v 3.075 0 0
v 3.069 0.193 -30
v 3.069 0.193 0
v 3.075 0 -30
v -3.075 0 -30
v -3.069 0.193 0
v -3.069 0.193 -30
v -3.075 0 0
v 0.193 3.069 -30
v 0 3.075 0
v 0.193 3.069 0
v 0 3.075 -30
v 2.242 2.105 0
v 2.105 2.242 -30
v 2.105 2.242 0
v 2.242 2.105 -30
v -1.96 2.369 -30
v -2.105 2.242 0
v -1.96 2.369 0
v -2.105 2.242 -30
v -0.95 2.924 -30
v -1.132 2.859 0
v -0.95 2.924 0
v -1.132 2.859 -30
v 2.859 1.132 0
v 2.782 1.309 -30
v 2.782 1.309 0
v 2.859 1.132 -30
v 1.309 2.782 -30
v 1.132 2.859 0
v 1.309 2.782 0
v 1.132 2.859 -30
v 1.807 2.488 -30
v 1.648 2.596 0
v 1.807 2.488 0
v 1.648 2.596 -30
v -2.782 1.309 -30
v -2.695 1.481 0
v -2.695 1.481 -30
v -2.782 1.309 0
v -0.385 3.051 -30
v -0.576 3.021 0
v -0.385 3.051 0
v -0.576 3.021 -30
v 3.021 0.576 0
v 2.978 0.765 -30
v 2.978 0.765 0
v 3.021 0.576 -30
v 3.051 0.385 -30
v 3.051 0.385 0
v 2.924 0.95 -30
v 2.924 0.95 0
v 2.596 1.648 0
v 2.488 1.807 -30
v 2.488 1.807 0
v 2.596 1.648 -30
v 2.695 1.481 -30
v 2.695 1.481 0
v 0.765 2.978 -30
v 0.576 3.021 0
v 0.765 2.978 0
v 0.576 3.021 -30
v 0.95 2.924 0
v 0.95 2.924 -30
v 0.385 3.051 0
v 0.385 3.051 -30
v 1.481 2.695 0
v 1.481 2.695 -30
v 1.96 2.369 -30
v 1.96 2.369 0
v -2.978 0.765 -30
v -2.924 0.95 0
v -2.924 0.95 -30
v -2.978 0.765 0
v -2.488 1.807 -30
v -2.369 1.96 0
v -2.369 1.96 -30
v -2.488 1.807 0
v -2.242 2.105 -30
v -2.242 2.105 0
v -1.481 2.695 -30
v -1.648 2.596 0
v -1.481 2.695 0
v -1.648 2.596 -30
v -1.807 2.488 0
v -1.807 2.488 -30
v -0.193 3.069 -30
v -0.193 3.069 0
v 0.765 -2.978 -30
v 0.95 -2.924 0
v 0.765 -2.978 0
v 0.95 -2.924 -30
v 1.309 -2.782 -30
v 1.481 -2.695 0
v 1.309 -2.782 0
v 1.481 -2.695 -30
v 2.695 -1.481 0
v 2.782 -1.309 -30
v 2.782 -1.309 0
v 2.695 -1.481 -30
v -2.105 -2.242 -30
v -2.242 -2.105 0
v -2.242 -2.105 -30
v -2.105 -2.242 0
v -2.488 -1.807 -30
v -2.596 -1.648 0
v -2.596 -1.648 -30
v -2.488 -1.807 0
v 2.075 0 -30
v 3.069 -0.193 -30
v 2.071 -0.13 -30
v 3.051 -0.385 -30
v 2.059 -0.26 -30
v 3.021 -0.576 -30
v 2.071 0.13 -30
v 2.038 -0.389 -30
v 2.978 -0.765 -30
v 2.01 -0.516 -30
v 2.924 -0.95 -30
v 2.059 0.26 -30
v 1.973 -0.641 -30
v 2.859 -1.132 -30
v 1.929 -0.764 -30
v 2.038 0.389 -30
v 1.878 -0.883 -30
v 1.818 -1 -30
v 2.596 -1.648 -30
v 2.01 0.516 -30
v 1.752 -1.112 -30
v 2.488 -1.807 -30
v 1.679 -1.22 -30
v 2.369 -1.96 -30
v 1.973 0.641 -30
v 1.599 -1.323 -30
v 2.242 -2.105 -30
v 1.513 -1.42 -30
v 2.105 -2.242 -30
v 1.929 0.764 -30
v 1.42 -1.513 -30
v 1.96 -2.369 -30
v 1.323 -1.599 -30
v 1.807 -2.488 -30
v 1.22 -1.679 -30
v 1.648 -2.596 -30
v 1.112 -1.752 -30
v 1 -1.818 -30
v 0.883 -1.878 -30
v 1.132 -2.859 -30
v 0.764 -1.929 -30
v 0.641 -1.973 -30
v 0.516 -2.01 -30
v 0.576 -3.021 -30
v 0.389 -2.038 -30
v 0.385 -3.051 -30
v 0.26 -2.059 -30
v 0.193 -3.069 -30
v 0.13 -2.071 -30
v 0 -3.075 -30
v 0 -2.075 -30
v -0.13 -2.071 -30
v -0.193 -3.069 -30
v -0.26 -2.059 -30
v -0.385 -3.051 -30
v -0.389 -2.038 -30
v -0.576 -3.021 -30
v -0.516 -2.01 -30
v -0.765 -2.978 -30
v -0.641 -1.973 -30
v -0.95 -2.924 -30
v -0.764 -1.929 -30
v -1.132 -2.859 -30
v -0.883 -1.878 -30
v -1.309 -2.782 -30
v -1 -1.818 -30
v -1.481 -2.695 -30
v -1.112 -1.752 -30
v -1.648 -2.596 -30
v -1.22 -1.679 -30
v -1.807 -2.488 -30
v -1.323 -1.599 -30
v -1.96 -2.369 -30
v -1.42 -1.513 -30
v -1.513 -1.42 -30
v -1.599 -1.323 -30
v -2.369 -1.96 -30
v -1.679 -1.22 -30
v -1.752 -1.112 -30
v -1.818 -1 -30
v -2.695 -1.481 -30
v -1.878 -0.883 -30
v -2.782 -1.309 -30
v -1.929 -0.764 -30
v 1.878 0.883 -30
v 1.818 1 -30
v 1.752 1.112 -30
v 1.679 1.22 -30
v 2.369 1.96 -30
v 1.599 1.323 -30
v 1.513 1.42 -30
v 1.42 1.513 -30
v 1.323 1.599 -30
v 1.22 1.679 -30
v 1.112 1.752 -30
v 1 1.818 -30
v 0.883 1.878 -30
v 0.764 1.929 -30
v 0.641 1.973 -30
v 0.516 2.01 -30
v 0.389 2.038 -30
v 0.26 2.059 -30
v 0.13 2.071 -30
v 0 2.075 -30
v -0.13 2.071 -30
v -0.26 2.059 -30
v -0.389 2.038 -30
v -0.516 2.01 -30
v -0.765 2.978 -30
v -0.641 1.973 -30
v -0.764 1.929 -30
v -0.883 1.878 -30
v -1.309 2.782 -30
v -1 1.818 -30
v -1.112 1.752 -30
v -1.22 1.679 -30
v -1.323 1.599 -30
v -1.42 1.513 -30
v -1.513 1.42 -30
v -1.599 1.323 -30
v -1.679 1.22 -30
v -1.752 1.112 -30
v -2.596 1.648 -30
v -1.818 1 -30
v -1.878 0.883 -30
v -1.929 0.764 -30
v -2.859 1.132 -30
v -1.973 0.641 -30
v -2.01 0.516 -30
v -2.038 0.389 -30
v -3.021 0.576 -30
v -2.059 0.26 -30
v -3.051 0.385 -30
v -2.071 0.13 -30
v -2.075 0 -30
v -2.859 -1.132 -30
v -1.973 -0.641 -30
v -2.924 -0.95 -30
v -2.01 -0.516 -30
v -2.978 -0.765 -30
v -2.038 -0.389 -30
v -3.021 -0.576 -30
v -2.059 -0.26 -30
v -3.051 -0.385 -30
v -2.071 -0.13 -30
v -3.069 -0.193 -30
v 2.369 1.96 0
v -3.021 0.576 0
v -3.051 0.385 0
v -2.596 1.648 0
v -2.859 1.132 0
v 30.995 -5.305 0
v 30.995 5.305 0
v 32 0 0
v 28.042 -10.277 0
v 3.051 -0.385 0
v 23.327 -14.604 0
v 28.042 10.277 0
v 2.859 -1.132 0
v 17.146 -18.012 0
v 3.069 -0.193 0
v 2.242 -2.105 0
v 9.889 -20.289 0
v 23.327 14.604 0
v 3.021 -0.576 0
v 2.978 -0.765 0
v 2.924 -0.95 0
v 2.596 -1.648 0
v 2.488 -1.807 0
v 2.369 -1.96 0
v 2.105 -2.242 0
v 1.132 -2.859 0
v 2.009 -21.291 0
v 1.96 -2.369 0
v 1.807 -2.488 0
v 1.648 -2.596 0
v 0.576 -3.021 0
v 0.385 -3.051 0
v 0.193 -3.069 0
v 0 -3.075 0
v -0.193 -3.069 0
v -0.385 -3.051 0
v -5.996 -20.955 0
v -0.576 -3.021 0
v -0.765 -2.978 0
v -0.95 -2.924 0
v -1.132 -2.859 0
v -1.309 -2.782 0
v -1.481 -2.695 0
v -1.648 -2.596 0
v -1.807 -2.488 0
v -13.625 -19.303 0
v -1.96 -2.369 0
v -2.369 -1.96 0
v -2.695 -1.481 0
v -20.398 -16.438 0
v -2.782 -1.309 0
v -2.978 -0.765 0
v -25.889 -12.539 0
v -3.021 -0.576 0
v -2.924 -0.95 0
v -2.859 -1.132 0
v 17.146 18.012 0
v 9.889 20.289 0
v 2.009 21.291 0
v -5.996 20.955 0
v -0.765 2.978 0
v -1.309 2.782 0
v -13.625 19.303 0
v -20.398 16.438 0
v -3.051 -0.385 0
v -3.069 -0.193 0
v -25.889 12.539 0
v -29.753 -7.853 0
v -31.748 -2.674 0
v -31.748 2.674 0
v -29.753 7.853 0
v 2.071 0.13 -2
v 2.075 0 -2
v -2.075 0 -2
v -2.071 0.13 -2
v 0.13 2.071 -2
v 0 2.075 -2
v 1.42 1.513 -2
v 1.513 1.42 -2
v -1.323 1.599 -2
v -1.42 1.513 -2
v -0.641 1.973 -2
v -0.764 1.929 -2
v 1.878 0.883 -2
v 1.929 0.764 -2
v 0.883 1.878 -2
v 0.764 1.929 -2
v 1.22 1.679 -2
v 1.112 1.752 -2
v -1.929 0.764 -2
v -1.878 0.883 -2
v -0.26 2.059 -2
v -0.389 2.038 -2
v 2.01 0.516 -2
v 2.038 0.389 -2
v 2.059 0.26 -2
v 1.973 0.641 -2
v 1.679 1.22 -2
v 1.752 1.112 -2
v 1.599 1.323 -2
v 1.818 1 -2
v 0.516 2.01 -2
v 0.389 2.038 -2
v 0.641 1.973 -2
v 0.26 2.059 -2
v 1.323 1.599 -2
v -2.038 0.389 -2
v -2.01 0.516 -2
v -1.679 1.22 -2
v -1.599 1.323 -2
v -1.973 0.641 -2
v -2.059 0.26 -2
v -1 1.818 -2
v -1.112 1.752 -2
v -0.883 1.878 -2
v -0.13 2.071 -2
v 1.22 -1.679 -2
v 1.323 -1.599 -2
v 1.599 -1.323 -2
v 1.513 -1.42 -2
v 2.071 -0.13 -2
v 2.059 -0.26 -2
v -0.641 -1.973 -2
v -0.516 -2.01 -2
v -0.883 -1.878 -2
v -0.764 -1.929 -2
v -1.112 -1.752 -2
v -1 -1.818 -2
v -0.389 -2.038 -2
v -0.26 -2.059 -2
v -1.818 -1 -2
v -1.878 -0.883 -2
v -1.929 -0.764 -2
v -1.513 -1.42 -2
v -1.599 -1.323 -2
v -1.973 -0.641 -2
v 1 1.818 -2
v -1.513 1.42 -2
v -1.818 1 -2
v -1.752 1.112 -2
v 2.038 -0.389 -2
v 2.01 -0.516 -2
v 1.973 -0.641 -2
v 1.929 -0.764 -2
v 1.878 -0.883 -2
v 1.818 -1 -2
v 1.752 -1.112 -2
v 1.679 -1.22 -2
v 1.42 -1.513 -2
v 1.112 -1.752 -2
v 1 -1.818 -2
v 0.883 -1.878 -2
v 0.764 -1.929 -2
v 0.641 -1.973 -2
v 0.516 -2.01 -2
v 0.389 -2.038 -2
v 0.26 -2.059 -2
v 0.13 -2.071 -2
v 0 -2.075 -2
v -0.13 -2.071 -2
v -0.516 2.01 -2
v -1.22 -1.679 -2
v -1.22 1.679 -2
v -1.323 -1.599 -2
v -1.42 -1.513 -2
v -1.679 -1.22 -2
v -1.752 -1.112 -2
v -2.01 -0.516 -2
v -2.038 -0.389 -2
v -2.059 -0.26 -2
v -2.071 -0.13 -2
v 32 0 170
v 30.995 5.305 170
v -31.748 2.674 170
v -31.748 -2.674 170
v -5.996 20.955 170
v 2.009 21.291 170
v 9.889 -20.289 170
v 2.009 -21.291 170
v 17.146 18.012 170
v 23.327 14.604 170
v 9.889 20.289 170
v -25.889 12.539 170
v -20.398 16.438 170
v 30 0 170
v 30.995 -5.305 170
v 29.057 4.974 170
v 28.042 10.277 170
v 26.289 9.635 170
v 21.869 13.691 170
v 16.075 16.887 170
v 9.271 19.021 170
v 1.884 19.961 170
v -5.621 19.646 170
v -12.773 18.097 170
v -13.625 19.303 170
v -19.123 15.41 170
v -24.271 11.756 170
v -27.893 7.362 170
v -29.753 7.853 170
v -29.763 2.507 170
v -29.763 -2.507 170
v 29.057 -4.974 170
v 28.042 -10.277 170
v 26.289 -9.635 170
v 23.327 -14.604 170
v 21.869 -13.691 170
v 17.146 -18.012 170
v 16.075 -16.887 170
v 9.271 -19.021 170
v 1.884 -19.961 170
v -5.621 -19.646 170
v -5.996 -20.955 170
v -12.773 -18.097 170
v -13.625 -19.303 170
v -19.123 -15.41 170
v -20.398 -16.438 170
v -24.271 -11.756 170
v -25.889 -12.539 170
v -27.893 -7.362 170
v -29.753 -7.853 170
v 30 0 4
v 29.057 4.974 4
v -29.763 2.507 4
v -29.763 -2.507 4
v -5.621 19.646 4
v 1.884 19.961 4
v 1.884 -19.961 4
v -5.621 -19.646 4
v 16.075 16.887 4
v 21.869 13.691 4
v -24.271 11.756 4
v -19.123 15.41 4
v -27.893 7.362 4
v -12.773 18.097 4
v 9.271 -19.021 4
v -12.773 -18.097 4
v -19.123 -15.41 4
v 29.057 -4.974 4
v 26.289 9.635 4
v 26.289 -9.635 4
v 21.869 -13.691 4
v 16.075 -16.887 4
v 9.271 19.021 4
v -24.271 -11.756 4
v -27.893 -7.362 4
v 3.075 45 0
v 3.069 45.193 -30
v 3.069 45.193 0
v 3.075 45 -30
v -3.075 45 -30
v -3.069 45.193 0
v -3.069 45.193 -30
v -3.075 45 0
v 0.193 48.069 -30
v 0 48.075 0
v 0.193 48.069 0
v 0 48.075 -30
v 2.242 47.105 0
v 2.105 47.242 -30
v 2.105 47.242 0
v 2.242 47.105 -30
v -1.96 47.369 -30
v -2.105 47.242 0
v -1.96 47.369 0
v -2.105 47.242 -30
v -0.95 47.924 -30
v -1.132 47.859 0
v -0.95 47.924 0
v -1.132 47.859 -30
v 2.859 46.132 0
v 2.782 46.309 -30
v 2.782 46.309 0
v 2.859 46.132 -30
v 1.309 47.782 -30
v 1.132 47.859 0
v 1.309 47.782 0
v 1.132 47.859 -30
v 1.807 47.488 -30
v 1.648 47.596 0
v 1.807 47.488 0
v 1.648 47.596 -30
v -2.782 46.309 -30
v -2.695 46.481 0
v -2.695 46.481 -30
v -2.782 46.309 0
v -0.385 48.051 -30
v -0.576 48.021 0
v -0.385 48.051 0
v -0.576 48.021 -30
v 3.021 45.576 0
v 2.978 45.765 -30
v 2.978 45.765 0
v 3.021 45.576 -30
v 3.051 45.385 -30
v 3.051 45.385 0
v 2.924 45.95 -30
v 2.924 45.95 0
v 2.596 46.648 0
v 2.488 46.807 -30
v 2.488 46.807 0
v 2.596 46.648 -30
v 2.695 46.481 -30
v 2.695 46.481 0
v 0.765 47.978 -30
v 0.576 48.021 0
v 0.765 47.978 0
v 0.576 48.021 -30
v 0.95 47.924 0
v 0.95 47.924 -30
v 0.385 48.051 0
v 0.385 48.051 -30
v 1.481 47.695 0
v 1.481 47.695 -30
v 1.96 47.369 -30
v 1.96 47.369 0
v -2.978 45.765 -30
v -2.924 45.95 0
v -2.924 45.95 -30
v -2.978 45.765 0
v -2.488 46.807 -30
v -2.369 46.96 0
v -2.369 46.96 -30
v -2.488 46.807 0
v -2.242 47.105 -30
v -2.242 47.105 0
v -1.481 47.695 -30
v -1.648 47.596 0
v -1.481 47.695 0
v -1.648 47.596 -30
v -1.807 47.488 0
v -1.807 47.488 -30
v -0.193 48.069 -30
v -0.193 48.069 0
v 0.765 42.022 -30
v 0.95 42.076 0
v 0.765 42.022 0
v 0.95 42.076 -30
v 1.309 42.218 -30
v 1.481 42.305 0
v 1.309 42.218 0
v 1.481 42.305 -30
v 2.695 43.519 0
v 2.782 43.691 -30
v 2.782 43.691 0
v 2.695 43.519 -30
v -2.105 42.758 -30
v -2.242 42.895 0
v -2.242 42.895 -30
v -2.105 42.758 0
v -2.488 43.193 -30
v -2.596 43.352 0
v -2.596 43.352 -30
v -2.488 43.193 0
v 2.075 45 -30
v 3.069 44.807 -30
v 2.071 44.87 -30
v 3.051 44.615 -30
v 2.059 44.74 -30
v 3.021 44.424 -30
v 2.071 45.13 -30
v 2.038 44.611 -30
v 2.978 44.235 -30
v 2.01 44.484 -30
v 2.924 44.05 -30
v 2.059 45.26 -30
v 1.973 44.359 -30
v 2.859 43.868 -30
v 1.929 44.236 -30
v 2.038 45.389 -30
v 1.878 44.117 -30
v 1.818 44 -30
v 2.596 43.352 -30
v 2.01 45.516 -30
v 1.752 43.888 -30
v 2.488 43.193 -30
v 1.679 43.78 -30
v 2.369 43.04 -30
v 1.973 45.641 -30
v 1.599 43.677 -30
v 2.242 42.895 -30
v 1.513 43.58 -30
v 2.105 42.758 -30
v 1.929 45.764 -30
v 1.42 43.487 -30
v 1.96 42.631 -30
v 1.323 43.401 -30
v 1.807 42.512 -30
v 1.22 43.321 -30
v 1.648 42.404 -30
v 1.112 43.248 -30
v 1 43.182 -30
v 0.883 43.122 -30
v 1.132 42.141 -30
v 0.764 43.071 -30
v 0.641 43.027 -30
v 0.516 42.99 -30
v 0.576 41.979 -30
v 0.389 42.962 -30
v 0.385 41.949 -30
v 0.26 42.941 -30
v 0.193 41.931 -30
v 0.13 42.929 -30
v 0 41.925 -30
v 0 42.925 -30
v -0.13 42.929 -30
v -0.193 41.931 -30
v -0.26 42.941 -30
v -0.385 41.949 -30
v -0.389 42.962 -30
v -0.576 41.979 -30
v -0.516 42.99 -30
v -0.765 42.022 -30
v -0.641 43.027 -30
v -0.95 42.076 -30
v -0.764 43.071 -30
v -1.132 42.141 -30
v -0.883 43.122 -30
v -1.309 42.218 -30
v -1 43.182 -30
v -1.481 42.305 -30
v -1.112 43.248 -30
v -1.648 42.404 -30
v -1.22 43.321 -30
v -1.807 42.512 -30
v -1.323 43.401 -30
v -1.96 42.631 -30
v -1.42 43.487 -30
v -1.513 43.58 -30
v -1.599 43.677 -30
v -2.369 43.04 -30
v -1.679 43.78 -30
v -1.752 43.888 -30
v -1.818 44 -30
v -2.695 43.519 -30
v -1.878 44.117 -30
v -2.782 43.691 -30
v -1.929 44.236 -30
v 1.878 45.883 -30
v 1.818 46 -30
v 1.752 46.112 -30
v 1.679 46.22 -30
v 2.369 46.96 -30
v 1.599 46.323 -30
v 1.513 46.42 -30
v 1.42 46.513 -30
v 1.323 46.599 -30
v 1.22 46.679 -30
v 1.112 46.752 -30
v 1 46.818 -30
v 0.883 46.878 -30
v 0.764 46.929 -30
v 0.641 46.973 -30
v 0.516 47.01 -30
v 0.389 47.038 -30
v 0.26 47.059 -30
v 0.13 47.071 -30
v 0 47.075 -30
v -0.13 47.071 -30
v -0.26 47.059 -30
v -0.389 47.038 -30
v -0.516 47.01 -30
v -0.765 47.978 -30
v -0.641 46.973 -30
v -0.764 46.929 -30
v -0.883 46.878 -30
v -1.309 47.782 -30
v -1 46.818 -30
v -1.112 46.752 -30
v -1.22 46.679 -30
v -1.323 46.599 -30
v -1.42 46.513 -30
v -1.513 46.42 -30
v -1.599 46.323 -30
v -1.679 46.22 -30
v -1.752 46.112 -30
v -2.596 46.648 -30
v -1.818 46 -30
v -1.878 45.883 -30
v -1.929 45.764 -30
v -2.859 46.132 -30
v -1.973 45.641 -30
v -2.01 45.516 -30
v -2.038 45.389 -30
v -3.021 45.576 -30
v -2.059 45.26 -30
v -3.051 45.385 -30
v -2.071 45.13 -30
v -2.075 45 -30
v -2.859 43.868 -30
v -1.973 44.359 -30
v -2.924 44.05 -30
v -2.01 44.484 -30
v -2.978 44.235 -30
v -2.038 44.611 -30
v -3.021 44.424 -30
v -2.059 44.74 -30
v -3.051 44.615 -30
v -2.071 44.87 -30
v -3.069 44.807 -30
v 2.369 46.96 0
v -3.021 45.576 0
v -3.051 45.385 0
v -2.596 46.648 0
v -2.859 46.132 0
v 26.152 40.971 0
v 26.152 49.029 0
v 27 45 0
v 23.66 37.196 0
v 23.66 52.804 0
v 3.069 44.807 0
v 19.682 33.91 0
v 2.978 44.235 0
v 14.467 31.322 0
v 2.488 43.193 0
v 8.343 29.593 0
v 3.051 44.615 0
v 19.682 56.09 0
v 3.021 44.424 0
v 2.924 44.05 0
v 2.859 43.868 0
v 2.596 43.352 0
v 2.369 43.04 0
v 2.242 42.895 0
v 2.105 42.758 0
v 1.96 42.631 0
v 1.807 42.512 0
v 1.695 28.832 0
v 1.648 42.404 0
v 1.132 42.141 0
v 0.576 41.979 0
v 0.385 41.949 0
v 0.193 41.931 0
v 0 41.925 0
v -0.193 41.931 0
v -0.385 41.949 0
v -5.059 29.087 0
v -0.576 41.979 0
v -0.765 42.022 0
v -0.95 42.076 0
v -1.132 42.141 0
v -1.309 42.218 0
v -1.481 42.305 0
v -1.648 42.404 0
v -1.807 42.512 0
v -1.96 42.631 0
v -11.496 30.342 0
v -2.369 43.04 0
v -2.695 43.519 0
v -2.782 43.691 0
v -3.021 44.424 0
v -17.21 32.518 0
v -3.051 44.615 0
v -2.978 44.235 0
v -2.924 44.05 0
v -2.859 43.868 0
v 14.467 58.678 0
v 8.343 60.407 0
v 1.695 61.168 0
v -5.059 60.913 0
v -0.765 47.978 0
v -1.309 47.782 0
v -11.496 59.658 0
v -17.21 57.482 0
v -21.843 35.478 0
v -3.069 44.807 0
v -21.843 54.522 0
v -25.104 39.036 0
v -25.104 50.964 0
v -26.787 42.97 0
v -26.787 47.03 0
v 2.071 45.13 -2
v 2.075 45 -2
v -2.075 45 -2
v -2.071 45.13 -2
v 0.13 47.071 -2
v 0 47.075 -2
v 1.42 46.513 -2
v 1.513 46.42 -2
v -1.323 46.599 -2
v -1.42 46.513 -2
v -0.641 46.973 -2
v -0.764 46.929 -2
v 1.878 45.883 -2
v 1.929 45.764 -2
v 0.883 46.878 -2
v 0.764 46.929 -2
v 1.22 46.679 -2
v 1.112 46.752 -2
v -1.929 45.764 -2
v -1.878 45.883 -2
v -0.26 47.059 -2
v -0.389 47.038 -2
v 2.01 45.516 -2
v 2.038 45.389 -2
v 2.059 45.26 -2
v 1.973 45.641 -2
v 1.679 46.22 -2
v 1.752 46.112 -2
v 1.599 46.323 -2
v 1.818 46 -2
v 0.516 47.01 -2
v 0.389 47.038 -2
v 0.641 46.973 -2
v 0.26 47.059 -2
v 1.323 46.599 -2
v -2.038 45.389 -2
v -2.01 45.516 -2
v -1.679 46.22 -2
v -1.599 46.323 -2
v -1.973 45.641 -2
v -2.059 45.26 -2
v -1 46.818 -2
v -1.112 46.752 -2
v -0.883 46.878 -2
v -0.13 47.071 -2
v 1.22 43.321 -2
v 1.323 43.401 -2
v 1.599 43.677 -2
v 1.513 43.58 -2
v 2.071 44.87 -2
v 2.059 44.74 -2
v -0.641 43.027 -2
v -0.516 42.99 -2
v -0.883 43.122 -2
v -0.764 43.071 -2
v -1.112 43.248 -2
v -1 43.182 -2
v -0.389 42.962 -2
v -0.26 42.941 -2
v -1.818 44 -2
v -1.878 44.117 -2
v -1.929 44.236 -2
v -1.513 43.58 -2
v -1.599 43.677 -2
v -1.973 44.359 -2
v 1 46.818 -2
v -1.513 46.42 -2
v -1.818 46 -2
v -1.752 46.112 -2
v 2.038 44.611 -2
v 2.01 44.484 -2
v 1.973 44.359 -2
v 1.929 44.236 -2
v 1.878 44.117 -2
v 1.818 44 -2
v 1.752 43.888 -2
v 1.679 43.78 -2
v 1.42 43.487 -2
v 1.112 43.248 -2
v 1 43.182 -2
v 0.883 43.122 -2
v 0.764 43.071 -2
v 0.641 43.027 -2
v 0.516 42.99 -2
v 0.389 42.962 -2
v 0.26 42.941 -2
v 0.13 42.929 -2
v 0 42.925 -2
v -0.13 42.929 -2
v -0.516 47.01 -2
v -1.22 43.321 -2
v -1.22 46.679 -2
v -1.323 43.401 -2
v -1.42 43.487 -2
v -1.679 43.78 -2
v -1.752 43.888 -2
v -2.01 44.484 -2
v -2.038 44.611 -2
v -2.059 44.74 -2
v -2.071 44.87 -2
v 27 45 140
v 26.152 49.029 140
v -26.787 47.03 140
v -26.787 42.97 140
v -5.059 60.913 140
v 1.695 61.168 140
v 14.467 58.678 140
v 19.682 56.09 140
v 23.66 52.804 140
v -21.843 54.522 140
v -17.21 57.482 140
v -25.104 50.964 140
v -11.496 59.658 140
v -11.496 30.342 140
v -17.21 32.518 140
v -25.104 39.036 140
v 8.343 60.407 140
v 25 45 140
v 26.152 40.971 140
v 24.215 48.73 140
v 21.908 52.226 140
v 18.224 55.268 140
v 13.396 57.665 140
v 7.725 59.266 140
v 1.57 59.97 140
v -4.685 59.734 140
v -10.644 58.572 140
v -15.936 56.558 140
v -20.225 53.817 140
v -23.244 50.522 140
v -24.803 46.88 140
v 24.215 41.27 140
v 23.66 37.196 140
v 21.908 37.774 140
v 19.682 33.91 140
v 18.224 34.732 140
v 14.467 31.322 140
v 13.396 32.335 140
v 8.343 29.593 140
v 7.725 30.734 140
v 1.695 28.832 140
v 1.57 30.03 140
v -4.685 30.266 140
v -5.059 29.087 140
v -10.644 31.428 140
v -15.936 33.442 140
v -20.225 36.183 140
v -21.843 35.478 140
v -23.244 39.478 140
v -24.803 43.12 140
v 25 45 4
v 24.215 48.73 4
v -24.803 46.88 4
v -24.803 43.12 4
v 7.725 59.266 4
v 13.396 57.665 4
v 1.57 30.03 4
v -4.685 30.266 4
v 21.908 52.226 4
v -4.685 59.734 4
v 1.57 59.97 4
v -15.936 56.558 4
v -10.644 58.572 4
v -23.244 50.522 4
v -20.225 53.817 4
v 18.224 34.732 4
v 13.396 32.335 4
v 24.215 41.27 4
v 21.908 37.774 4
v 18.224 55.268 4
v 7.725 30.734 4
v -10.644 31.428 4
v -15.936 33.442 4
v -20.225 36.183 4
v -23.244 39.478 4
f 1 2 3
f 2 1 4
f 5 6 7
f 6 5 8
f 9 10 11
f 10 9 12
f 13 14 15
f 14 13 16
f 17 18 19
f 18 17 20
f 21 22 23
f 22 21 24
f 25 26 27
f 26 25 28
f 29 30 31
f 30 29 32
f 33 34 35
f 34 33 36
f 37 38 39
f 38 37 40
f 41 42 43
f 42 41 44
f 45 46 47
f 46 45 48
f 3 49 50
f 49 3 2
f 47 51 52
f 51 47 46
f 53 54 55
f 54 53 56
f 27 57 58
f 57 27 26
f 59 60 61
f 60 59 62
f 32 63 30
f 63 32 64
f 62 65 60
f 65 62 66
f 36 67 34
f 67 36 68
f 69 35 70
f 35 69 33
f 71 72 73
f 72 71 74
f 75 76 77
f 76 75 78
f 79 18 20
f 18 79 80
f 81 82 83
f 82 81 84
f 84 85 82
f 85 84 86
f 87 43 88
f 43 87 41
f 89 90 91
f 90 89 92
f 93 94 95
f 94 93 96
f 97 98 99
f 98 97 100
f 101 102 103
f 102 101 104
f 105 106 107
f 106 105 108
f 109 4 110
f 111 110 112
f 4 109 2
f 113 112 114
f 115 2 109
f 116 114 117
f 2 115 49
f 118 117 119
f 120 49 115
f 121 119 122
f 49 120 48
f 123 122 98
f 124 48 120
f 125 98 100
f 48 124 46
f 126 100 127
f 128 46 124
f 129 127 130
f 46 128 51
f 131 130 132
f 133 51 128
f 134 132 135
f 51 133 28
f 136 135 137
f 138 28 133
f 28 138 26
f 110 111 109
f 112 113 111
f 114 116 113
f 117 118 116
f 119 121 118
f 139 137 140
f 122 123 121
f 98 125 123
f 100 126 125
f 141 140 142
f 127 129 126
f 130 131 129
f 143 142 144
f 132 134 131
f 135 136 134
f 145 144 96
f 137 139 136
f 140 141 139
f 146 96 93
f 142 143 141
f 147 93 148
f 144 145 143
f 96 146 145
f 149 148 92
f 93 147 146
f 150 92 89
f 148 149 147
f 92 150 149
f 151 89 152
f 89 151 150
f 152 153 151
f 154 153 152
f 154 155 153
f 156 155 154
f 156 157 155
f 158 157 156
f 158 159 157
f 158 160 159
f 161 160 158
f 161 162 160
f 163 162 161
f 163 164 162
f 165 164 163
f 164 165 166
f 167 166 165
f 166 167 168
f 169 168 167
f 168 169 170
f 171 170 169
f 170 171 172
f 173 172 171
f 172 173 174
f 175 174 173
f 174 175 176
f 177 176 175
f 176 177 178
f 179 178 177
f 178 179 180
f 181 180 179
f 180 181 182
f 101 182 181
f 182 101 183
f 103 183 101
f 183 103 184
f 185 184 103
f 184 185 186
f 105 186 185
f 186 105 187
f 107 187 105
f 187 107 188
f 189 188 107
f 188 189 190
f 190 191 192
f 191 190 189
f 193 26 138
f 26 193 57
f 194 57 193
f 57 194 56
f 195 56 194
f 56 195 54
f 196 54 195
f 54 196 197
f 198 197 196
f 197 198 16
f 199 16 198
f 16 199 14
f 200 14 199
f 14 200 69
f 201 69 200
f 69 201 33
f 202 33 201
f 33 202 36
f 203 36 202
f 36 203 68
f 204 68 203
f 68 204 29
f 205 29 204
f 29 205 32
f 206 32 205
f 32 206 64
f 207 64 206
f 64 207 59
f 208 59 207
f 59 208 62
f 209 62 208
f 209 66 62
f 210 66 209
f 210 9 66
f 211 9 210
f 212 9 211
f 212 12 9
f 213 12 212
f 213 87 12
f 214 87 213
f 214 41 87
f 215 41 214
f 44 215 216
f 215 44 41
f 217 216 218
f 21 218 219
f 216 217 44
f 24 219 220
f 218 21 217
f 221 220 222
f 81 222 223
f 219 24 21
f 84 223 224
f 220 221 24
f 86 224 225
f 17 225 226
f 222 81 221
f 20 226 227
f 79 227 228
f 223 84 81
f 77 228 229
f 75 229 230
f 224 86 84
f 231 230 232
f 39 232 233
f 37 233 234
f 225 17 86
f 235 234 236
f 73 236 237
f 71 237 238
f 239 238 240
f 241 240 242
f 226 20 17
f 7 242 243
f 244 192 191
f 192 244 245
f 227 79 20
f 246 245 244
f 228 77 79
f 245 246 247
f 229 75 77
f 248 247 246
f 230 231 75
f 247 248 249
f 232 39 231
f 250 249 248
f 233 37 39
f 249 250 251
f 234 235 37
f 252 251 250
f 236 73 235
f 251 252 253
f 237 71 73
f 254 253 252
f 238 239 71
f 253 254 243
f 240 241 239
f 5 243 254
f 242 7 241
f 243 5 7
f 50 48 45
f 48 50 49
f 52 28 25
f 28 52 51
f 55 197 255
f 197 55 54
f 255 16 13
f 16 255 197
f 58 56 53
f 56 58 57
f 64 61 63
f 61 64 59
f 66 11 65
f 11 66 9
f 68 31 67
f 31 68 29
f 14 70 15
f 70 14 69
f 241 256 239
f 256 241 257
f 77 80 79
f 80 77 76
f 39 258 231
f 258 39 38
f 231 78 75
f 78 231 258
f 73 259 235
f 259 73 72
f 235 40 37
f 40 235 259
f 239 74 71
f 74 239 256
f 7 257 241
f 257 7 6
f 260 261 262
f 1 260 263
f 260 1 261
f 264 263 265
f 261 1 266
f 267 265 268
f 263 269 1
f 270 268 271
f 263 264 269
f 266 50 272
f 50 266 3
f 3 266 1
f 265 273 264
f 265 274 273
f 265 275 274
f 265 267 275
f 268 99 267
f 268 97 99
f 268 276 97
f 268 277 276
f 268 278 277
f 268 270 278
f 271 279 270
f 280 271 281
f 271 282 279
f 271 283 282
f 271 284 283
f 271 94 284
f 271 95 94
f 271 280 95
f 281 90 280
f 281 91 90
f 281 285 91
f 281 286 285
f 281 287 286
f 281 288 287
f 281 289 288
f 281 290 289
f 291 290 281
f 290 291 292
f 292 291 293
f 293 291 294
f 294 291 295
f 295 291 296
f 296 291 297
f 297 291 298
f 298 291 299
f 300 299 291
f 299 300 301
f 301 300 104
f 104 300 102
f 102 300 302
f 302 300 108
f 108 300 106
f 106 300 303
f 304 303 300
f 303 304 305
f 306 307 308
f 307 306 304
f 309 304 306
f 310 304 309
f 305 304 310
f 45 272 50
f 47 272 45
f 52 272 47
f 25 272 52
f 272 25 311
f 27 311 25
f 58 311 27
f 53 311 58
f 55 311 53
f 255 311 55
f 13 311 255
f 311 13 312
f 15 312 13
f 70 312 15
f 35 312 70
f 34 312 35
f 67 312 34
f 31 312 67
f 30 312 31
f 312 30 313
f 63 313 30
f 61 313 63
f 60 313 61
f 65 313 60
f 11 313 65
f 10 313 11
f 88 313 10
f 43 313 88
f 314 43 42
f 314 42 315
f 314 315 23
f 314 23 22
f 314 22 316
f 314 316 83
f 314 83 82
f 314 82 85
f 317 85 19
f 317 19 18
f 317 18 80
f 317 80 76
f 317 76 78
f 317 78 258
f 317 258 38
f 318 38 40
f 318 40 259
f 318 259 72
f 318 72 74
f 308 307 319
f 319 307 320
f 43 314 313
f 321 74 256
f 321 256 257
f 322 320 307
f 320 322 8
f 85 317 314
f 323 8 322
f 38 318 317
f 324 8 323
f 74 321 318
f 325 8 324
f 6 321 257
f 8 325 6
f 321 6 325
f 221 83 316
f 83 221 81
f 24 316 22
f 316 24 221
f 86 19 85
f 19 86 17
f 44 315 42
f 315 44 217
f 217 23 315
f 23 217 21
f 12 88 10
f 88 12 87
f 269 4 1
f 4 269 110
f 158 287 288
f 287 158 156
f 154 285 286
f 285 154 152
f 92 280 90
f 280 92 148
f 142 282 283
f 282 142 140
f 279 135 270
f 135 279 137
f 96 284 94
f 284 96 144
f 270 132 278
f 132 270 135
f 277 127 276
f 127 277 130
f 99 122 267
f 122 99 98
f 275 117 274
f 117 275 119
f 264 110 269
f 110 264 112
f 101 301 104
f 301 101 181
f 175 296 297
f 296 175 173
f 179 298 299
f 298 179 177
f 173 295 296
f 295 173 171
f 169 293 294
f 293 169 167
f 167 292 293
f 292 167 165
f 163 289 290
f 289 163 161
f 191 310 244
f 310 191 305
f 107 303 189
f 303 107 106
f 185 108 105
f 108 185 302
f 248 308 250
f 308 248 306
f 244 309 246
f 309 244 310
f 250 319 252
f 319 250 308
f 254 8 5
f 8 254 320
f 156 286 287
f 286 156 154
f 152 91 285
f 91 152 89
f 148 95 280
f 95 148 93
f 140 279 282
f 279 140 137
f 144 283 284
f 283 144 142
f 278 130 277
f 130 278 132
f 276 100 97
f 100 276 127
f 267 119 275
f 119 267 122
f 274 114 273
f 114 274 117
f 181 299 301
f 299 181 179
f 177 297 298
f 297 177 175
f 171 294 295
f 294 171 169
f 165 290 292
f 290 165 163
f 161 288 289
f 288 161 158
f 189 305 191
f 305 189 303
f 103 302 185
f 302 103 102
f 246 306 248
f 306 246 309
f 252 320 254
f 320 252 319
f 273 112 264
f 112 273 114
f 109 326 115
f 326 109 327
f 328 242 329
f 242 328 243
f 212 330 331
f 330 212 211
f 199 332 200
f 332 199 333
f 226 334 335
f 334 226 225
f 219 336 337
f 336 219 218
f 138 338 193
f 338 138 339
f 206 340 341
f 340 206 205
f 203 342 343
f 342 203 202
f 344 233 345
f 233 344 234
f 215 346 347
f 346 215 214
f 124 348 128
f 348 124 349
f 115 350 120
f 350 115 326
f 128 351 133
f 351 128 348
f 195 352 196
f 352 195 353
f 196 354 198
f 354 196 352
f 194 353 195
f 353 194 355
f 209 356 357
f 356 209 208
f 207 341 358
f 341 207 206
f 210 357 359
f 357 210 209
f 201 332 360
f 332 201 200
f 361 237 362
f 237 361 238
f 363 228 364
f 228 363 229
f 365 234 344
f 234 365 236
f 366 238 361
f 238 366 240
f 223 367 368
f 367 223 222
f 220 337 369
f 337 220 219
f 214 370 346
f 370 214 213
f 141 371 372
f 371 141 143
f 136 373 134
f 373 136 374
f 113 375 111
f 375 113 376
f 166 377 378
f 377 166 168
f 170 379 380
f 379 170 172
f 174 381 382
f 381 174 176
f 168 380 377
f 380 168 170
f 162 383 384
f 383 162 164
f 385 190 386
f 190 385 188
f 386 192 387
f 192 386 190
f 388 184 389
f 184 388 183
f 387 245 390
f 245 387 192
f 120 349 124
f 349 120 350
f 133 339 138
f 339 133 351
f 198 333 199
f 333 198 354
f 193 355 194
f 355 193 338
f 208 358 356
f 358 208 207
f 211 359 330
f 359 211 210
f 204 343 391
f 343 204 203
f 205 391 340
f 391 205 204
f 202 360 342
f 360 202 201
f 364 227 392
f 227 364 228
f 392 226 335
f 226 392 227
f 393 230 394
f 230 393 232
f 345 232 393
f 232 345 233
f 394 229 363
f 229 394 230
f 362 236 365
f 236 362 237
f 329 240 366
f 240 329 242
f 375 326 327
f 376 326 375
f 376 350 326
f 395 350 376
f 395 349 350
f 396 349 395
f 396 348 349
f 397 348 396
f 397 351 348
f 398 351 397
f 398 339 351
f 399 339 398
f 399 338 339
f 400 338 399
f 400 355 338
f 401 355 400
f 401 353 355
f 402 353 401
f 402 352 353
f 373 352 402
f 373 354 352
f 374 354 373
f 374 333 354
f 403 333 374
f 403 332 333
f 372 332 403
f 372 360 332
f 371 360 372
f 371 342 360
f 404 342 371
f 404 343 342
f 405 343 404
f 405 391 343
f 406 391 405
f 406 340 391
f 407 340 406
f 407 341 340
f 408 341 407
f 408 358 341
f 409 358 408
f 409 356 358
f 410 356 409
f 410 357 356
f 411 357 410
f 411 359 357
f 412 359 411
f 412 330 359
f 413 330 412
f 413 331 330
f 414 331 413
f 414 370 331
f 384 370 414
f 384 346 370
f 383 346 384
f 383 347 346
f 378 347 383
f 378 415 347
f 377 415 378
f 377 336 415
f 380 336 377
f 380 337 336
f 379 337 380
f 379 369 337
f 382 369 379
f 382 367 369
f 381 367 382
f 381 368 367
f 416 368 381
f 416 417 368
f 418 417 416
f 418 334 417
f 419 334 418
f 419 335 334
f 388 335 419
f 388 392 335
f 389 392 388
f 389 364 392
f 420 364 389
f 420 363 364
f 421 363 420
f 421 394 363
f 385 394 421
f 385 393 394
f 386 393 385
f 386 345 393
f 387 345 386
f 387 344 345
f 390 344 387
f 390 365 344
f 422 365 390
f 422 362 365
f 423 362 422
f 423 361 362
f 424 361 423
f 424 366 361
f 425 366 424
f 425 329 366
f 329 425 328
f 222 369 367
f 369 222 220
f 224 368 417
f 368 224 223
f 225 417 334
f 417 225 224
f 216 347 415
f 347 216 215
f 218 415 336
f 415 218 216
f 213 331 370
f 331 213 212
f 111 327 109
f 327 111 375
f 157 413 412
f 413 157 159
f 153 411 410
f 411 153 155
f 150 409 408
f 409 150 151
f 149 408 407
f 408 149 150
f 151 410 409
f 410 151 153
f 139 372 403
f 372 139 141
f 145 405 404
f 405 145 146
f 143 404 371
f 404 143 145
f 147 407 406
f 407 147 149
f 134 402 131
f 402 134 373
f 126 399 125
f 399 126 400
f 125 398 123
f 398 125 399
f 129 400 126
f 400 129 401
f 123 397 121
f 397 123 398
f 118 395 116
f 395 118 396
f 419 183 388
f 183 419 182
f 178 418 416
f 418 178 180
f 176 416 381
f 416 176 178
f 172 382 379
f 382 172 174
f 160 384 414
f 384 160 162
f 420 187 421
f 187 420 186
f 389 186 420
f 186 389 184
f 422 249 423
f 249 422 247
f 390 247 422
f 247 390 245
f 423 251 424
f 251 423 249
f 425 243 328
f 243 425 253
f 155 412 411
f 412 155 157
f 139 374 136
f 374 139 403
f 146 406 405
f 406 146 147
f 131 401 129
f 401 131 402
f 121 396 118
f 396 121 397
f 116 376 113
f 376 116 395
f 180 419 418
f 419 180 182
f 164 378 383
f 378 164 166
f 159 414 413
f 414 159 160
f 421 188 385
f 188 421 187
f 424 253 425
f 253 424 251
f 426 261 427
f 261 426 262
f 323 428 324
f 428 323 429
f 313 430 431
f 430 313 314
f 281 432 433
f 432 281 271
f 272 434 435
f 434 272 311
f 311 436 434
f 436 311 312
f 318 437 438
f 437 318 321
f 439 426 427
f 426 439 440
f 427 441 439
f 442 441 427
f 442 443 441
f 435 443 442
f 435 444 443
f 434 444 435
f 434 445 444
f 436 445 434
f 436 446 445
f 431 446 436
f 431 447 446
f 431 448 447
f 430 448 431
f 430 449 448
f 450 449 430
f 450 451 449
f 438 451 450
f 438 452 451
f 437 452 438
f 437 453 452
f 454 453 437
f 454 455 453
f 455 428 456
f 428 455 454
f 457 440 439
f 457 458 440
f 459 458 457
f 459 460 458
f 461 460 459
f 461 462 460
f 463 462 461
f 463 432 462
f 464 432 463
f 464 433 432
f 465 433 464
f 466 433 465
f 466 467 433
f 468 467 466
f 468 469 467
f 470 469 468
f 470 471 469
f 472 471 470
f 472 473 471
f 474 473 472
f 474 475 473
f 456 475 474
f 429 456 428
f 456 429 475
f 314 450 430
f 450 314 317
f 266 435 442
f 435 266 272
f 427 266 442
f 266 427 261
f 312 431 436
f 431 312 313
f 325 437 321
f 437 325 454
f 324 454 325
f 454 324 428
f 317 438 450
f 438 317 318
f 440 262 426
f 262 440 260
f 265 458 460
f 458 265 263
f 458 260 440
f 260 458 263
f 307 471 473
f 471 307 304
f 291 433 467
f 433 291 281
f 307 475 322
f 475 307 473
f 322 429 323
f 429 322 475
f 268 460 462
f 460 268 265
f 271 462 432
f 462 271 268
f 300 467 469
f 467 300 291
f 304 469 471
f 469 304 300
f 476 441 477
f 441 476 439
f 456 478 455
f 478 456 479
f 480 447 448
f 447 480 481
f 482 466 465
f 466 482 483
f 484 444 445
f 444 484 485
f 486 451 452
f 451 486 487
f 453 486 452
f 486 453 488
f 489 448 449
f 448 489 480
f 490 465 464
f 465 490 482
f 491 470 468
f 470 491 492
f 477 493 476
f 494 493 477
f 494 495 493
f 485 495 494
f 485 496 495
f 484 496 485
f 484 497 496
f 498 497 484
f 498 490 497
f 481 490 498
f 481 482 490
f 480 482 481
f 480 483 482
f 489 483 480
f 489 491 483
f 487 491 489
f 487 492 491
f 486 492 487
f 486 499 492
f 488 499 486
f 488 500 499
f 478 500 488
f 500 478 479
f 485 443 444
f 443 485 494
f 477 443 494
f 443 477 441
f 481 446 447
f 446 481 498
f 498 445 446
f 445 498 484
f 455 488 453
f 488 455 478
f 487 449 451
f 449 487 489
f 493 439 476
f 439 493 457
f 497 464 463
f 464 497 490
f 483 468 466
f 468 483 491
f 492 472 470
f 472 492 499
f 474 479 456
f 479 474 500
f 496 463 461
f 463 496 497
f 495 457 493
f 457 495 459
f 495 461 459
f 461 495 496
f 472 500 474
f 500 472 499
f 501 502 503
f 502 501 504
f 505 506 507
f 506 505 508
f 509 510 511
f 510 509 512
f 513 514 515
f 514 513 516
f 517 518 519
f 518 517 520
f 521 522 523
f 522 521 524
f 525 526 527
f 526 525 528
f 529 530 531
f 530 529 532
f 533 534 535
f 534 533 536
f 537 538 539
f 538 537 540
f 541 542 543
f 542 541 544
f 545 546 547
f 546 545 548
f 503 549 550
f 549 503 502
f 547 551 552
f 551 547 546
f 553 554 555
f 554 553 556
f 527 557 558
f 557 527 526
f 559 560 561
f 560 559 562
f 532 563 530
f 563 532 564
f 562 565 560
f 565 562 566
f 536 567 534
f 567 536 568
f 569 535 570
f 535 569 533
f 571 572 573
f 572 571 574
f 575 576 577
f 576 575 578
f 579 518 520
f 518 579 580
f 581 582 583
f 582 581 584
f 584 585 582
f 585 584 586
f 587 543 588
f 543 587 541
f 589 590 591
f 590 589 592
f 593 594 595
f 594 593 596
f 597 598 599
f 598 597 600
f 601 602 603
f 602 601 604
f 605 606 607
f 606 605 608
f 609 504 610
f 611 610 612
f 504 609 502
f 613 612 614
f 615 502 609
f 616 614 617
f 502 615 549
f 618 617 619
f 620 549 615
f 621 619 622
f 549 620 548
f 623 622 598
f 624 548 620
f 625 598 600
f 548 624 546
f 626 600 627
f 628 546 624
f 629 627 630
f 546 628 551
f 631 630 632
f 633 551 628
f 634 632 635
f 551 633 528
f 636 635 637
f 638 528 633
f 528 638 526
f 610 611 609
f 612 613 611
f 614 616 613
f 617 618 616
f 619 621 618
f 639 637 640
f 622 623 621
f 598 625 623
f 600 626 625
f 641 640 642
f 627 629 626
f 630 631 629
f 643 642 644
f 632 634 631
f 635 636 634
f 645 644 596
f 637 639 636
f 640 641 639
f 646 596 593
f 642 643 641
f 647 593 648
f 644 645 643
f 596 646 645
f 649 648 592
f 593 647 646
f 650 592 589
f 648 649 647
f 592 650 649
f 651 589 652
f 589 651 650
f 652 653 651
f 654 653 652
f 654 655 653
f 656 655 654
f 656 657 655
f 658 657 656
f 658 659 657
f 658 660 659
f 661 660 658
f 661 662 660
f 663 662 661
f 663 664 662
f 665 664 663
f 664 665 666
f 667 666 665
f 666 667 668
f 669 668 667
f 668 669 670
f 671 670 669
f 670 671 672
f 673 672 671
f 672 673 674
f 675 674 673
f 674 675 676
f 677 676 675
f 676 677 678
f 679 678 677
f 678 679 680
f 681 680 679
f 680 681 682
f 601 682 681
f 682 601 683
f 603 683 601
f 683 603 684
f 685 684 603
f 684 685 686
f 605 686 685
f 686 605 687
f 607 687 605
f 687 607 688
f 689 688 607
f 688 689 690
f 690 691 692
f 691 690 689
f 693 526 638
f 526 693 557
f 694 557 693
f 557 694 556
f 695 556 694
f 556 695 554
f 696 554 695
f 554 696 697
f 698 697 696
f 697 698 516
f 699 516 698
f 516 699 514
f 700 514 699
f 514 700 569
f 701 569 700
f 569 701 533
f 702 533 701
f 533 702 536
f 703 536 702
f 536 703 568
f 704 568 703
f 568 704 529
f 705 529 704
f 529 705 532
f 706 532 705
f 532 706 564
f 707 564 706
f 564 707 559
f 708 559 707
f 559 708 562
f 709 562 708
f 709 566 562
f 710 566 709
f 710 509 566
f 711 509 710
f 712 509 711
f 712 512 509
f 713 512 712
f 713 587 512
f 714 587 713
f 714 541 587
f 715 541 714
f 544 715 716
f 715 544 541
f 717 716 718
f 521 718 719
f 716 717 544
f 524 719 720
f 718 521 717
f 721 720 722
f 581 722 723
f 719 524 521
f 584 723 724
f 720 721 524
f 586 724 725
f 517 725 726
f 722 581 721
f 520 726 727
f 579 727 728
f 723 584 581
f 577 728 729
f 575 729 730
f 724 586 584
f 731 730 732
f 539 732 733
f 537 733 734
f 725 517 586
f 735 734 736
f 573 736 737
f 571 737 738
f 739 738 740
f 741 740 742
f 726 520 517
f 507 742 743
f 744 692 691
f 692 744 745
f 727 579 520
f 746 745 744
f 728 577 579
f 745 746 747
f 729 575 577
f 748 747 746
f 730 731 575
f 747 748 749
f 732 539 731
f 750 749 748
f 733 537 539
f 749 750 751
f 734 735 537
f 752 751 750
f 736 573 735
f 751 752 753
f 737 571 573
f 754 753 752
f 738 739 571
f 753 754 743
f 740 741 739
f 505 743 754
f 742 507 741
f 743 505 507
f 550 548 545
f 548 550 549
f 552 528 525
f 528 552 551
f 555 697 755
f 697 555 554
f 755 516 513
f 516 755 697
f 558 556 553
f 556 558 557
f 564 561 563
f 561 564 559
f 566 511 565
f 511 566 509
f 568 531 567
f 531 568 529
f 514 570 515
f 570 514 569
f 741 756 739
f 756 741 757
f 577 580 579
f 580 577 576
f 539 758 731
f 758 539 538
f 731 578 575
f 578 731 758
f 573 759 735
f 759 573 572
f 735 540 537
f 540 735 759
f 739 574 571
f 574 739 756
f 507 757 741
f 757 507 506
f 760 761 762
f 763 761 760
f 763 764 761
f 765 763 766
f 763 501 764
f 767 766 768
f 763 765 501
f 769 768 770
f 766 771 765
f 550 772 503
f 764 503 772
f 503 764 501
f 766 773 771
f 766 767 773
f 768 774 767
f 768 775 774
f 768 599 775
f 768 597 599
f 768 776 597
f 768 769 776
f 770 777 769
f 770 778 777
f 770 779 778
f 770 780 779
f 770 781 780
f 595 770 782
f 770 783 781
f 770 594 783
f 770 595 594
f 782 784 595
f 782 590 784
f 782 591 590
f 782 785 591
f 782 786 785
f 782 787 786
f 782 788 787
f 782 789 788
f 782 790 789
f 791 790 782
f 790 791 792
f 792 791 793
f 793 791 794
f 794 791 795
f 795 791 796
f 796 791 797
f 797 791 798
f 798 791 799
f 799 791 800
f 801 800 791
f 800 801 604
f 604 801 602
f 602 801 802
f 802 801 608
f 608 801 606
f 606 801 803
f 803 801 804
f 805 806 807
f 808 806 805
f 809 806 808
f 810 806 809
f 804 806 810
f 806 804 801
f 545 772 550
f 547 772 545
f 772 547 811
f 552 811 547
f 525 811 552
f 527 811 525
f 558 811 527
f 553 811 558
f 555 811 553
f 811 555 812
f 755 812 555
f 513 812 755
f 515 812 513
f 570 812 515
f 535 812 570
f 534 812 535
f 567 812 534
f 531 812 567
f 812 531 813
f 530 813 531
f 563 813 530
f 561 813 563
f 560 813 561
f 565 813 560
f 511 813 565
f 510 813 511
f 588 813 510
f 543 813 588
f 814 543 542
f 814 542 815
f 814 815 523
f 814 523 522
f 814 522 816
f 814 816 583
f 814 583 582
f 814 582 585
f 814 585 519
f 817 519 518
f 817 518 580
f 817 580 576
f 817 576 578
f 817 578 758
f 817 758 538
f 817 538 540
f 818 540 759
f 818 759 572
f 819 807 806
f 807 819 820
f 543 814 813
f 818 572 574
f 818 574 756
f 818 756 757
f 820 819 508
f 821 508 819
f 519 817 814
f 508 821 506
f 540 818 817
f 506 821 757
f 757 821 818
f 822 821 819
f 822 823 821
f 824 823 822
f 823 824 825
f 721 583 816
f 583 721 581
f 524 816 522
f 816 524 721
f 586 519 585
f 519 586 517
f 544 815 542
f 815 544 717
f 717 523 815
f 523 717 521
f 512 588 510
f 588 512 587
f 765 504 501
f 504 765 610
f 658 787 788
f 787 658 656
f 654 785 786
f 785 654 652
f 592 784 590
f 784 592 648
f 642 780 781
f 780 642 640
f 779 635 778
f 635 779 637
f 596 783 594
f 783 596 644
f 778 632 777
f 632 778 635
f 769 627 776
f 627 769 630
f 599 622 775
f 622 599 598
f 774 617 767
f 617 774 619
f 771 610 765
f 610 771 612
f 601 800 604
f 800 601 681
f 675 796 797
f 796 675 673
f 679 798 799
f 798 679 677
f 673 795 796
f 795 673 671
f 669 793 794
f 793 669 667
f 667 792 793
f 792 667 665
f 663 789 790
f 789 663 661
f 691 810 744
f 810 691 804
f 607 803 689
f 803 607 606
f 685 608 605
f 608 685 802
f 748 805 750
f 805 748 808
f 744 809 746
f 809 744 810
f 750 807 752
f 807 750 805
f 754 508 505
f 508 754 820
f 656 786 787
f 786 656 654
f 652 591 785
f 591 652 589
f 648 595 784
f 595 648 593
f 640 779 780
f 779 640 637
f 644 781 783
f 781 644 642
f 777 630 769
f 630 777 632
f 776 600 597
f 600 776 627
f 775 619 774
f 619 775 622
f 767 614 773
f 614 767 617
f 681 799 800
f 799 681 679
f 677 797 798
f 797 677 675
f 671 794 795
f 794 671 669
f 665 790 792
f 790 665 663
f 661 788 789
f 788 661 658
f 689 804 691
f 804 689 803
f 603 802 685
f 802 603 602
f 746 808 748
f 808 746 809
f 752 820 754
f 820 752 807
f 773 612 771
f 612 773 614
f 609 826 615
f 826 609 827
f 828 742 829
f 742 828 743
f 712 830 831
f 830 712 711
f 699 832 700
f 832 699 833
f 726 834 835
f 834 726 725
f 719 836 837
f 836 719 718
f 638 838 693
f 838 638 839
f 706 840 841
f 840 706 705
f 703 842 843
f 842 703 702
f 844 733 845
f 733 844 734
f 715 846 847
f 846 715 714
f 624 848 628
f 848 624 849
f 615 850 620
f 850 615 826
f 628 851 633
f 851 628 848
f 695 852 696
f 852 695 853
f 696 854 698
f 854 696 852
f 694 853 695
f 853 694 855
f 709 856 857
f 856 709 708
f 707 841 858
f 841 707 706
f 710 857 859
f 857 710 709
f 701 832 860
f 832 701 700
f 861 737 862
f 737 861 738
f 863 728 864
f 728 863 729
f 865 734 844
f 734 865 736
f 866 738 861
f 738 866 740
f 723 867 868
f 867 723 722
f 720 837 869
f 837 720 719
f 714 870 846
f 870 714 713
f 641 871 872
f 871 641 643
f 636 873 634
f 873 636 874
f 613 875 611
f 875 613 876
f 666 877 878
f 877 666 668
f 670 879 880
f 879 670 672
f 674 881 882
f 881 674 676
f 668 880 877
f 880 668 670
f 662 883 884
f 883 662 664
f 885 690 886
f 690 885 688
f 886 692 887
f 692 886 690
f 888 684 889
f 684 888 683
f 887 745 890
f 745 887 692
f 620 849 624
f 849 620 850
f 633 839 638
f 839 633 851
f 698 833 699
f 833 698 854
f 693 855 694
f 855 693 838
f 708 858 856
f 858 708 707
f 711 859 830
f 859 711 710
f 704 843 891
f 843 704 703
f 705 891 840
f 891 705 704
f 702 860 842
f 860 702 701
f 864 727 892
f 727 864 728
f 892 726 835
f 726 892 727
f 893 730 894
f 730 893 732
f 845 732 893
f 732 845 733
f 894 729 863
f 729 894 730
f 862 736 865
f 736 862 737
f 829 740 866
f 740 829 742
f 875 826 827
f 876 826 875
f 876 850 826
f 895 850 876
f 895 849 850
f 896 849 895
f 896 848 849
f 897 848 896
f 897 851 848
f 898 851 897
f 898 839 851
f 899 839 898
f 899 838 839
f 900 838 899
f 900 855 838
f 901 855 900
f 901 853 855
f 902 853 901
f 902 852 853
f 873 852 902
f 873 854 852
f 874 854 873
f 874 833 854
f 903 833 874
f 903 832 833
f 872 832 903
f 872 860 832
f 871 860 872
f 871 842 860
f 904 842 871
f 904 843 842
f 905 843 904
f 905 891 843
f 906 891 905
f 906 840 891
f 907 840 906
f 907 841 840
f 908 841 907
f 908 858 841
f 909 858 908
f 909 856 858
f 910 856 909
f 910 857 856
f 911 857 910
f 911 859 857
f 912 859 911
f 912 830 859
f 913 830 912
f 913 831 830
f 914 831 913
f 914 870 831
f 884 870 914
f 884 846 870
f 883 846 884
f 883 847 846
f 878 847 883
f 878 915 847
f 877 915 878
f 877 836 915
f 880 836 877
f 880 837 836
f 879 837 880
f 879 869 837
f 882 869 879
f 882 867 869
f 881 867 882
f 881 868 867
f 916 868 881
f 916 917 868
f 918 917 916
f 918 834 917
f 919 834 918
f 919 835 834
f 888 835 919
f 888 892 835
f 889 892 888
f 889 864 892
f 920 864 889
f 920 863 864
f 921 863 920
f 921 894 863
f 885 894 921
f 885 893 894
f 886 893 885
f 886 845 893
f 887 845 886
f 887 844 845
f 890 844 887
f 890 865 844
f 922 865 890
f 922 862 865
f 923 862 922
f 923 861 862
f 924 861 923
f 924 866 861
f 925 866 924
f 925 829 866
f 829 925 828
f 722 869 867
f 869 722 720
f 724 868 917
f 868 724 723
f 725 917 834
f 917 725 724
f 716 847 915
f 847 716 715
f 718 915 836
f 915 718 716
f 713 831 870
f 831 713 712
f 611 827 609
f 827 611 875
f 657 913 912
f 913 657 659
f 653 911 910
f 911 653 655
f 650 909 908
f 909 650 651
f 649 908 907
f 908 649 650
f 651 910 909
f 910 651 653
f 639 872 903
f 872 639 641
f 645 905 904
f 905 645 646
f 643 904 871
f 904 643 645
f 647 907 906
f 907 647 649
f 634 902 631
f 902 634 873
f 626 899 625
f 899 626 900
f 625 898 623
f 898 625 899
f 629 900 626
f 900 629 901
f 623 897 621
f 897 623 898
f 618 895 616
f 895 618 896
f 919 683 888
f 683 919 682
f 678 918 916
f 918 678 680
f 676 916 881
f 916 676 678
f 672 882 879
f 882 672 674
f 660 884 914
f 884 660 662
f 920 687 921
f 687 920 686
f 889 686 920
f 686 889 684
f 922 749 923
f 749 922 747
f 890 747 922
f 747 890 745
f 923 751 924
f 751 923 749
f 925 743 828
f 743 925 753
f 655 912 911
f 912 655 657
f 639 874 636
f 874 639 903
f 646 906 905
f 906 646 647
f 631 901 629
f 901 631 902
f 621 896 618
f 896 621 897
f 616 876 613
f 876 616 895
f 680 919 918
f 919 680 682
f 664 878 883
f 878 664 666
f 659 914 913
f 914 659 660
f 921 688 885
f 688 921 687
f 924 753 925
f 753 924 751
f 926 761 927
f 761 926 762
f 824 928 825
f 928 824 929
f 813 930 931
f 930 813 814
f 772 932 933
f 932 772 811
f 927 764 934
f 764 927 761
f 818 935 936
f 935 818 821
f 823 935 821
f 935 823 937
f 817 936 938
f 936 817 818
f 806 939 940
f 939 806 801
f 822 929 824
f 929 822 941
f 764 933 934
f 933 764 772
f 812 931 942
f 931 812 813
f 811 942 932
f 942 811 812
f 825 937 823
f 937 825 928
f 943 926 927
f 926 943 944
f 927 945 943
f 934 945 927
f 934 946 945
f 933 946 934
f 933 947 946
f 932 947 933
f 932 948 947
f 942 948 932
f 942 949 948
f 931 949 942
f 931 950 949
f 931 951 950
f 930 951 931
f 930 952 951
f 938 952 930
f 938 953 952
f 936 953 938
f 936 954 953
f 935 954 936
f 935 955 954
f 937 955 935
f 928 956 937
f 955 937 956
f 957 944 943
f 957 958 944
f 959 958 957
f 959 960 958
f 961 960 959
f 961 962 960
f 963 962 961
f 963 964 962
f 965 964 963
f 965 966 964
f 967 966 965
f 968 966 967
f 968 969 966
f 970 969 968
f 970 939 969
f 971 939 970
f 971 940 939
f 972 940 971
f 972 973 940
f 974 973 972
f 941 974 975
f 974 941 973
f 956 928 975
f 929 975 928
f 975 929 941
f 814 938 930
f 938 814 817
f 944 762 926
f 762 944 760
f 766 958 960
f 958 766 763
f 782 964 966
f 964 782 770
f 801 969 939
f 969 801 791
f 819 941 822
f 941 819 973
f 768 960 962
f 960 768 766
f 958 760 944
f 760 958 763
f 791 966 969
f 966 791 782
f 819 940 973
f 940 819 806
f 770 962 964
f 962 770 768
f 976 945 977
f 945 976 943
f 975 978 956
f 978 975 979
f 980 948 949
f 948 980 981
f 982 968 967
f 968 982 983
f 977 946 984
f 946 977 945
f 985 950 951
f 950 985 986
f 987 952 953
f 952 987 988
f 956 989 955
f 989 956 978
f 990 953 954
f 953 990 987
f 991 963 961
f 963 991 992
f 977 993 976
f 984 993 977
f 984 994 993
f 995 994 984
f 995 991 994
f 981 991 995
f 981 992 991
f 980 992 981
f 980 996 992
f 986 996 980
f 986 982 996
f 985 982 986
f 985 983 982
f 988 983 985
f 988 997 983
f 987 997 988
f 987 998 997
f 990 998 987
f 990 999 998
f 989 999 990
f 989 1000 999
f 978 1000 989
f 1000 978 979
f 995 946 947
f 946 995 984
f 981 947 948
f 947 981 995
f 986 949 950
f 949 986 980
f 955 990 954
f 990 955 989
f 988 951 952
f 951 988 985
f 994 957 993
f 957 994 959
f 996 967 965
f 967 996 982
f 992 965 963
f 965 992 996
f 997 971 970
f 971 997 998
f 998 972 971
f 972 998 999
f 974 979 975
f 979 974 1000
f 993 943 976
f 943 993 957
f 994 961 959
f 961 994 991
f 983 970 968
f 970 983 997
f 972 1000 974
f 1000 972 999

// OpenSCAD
// file: bottom_pin.scad
// This is the bottom pin which is used to mount the sample holders into the machines.
// Since we use this for most of our models, it makes sense to have a small 'template' which we can just add the model where it's needed...
// To do so, add a line with "use<bottom_pin.scad>"
// And then just call "pin();" wherever you need the pin :)
$fn=100;
module pin(diameter=6.15, height=20, cap_depth=2)
{
    translate([0,0,-height]) difference(){
        cylinder(d=diameter,h=height);
        cylinder(d=diameter-2,h=height-cap_depth);
    }
}
pin();
// main file
$fn=25;

use <bottom_pin.scad>
          
module fishholder(cylinder_height,
            ellipse_diameter1,
            ellipse_diameter2,
            wall_thickness=2) {
    difference() { // Cut out cylinder with given diameter from cylinder with given diameter plus wall thickness
        union() { // Collect the bottom pin and the cylinder
            pin(height=30);
            scale([1, ellipse_diameter2/ellipse_diameter1, 1]) { // squash the tube
                cylinder(d=ellipse_diameter1+2*wall_thickness,h=cylinder_height);
                }
                }
                translate([0,0,wall_thickness * 2]) {
                    scale([1, ellipse_diameter2/ellipse_diameter1, 1]) { // squash the tube
                    #cylinder(d=ellipse_diameter1, h=cylinder_height+1);
                        }
                    }
                }
            }

fishholder(170, 60, 40, wall_thickness=2);
translate([0,45,0]) fishholder(140, 50, 30, wall_thickness=2);
